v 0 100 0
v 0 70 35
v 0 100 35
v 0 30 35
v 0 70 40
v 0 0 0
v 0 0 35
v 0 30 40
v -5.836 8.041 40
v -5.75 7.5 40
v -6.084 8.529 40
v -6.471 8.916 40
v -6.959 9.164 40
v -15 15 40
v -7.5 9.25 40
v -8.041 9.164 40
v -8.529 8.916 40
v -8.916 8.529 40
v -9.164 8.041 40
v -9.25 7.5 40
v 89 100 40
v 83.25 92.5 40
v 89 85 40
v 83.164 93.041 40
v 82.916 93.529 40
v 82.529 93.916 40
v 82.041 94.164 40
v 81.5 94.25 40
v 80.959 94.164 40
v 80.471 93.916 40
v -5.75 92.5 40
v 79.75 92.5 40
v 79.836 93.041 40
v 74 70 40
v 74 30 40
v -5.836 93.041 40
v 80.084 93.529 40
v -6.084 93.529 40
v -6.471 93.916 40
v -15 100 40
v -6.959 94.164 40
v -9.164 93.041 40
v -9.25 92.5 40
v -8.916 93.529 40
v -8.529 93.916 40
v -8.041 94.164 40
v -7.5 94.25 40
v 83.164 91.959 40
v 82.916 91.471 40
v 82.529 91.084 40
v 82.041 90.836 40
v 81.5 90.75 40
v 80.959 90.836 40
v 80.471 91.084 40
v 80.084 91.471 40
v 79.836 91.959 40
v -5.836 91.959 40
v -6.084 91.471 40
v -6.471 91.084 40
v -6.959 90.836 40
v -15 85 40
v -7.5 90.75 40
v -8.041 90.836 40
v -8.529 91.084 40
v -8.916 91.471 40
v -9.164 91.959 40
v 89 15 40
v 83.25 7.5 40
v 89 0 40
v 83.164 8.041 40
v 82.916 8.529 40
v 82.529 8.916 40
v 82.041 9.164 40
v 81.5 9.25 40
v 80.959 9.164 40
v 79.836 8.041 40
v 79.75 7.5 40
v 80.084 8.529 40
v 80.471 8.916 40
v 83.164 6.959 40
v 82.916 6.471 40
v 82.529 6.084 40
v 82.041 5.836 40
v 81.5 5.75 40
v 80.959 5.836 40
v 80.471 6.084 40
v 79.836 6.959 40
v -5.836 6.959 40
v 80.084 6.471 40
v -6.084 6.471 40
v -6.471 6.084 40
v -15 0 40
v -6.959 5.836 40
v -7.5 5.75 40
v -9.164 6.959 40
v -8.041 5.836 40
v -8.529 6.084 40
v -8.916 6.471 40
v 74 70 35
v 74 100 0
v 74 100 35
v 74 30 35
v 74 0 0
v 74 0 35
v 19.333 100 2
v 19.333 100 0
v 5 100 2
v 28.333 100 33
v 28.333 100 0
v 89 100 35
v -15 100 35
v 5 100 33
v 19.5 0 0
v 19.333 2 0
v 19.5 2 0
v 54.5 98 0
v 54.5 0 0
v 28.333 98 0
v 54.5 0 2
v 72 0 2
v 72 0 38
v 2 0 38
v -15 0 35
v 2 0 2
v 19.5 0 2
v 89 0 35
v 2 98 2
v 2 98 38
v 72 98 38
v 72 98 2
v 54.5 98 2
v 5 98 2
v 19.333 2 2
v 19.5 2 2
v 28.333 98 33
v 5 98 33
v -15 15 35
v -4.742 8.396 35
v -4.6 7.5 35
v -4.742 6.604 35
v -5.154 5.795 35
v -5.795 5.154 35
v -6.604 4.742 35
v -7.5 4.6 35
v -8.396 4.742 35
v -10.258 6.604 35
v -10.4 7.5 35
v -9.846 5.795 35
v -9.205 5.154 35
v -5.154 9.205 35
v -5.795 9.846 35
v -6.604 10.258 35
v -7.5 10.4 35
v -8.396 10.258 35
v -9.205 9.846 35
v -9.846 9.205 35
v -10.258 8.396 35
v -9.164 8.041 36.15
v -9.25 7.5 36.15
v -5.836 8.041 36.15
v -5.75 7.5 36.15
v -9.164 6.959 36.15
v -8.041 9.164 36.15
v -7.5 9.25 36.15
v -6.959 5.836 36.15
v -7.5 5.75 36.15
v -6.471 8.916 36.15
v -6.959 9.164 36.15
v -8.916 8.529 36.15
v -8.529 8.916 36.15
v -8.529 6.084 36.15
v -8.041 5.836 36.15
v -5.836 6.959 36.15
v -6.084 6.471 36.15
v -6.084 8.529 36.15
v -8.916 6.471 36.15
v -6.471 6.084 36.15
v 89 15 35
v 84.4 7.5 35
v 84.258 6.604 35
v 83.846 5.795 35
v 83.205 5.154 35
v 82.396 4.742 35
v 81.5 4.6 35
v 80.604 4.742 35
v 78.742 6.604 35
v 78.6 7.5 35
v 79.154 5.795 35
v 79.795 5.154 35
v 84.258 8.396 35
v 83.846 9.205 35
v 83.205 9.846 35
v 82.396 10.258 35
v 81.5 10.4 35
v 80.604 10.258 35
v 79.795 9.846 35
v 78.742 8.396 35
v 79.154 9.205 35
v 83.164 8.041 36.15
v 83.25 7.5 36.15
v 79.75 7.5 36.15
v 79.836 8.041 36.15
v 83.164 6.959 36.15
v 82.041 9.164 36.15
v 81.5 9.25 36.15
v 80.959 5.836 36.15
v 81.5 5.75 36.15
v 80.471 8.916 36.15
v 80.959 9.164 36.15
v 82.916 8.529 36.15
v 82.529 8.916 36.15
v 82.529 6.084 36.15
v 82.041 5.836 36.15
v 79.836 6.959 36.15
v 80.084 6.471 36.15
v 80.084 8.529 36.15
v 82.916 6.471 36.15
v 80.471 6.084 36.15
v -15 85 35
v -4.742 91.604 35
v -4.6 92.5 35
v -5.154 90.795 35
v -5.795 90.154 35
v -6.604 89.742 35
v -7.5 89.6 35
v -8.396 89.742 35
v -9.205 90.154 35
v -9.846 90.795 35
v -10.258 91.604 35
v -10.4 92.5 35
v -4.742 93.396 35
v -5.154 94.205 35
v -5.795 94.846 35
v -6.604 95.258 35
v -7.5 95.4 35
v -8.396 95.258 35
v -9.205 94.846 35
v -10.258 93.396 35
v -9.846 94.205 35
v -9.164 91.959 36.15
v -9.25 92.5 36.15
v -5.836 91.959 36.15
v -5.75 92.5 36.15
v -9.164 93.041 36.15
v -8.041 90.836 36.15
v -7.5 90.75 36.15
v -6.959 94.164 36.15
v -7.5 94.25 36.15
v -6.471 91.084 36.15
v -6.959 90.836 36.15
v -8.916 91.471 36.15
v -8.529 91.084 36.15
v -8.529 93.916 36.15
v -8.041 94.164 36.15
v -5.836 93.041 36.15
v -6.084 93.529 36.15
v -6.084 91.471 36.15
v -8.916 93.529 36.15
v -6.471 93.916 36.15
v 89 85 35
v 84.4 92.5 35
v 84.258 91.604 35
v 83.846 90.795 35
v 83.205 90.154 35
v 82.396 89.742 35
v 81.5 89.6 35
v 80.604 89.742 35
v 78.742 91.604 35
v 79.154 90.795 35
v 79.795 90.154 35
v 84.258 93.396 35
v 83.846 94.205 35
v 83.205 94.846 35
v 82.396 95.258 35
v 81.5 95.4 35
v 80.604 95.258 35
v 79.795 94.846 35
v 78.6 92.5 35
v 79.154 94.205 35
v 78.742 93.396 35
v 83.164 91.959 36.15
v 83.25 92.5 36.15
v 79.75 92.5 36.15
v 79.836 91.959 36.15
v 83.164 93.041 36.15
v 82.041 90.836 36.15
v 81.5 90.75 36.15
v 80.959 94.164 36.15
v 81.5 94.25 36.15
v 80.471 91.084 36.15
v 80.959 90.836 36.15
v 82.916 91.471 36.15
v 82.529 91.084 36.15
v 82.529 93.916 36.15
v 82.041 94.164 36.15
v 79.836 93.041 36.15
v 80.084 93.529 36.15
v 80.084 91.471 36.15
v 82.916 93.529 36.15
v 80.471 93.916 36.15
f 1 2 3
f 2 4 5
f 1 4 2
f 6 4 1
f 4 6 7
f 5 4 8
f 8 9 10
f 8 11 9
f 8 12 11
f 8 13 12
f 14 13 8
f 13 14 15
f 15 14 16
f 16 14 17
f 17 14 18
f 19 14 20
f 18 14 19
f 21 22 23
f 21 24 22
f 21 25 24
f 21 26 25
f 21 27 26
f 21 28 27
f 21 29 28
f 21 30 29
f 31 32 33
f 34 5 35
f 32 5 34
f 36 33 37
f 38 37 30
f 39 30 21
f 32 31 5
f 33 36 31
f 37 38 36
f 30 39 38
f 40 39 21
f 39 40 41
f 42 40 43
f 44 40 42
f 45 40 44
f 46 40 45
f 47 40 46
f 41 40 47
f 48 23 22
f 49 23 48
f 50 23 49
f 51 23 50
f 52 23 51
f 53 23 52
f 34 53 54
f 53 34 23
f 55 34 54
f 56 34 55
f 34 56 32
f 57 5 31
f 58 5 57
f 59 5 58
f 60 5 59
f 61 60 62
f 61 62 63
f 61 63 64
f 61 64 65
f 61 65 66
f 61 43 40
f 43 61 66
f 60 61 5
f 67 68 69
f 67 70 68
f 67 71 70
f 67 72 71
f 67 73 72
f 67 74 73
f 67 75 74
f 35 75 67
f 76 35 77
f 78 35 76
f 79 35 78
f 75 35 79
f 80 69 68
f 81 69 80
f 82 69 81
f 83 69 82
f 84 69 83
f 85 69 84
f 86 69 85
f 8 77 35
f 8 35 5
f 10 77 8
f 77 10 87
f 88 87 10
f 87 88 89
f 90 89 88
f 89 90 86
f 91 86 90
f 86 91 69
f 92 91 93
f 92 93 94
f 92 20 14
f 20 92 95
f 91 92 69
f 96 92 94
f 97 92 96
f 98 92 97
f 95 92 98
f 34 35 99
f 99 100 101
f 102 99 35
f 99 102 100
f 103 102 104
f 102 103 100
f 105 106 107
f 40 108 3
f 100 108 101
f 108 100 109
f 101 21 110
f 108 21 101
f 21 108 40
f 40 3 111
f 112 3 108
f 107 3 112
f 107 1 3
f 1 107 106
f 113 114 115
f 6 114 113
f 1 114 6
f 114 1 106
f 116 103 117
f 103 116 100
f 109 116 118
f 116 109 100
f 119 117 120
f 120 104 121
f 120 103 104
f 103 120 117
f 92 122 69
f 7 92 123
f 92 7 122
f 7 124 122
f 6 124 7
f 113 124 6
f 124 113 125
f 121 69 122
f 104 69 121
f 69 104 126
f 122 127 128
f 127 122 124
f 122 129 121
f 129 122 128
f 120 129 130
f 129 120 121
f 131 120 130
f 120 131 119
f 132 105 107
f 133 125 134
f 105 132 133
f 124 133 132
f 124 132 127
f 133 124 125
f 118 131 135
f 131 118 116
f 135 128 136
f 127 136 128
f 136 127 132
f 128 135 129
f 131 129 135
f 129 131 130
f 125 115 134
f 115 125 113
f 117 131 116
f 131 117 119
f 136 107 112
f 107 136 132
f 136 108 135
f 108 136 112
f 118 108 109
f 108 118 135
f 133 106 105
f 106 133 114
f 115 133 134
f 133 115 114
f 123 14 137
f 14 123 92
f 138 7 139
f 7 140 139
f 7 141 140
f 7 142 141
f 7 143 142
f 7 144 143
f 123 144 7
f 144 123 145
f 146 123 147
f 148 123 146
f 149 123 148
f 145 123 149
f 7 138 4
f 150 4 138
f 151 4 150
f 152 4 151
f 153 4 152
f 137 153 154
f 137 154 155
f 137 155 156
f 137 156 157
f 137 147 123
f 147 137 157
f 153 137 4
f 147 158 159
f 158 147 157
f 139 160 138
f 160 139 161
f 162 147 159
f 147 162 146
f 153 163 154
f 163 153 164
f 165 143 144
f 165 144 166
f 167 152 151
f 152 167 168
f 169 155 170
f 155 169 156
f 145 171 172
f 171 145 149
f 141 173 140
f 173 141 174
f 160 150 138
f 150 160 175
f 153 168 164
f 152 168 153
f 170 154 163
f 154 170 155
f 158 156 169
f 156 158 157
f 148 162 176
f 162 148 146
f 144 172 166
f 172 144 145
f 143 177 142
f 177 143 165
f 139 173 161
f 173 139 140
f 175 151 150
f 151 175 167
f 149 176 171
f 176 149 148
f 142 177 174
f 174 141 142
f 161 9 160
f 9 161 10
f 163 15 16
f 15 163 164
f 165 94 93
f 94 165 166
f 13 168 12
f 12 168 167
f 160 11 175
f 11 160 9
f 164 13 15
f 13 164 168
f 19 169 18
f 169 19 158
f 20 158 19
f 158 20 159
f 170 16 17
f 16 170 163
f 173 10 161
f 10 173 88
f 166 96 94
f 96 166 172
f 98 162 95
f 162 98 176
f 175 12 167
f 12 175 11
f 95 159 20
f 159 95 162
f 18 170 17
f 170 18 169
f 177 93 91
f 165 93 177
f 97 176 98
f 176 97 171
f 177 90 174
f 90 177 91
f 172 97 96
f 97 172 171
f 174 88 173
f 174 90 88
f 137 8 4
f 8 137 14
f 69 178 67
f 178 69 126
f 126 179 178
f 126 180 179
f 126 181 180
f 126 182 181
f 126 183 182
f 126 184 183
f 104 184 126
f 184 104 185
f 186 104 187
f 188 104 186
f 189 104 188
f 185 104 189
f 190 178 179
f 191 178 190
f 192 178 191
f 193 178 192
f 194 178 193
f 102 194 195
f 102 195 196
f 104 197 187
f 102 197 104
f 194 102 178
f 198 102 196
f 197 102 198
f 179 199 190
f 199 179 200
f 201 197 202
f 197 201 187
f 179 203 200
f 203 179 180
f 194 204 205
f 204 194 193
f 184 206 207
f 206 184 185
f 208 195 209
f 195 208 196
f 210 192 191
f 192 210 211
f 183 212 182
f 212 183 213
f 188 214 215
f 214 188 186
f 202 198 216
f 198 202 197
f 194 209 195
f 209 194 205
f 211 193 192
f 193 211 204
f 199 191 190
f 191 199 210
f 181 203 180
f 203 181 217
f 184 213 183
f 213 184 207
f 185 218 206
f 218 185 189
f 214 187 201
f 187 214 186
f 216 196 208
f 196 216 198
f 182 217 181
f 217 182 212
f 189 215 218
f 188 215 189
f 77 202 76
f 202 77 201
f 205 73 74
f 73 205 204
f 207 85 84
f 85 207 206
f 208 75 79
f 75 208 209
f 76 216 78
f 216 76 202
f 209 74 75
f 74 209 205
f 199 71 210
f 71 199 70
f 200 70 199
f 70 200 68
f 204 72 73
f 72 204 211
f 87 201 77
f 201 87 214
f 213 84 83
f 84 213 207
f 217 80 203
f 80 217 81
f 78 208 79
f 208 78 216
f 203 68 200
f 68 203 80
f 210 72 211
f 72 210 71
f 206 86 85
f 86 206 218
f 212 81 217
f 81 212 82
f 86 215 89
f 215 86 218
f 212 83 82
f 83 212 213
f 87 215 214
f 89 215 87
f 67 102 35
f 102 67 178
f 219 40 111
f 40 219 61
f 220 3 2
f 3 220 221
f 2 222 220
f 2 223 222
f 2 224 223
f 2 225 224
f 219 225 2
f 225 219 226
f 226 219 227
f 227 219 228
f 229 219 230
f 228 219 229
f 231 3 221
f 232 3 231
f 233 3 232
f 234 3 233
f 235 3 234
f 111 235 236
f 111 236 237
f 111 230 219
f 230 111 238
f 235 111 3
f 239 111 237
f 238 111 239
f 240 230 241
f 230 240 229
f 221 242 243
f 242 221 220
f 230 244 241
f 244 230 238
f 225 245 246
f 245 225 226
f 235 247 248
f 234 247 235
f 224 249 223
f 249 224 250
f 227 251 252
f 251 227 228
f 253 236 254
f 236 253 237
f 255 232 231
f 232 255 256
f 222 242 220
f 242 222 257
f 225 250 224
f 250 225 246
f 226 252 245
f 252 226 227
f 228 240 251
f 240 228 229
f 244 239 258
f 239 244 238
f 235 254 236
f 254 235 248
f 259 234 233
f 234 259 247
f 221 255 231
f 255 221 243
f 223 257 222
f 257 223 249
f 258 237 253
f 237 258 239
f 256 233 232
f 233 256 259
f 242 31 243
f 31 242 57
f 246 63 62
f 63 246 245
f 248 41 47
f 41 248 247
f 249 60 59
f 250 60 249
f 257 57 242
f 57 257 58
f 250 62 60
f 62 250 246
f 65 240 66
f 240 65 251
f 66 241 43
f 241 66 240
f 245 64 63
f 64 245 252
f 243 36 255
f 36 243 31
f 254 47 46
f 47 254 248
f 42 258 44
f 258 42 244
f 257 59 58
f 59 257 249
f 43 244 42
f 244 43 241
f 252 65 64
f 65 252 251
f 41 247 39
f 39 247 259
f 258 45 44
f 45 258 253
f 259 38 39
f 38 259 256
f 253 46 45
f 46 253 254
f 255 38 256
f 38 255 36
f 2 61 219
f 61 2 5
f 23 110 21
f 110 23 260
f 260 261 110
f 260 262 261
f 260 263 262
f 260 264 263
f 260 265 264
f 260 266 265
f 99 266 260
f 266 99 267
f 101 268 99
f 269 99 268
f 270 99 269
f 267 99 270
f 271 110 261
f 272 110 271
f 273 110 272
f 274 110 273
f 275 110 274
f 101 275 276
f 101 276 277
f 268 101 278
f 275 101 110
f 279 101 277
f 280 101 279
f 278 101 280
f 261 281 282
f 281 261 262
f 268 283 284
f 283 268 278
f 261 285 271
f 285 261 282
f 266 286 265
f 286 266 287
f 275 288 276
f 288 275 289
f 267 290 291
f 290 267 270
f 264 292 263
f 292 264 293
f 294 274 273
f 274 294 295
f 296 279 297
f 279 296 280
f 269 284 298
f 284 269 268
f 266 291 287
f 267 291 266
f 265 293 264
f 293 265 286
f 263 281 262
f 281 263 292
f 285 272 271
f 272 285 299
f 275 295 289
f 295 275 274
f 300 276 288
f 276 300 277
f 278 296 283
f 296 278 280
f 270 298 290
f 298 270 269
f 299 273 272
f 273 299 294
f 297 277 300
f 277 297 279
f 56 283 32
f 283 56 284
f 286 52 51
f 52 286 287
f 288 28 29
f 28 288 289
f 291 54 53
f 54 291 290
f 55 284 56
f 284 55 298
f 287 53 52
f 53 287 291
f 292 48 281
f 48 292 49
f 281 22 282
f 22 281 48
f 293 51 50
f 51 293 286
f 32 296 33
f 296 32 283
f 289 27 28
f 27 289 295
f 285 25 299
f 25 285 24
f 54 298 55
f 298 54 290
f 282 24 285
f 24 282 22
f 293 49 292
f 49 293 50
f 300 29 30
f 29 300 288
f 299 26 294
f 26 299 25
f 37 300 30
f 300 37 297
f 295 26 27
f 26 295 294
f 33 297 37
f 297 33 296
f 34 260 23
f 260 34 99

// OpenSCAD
w = 70;
l = 100;
t = 36;

difference() {
    cube([w+4, l, t+4]);
    translate([2, -2, 2]) cube([w, l, t]);
    translate([w/2+2, l/2-2, 5]) cube([w/2, l, t], center=true);
    translate([5, 2, 2]) cube([w*1/3, l, t-5]);
    translate([w*1/3-4, 2, -5]) cube([9, l, t-5]);
}

translate([-15, 0, t-1]) a();
translate([w+15+4, 0, t-1]) mirror([1,0,0]) a();
translate([-15, l, t-1]) mirror([0,1,0]) a();
translate([w+15+4, l, t-1]) rotate([0,0,180]) a();


module a() {
    difference() {
        cube([15, 30, 5]);
        translate([7.5, 7.5, 2.9]){ 
            rotate([0,180,0]) cylinder(d1=0, d2=6, h=3, $fn=20);
        }
        translate([7.5, 7.5, 0]){ 
            cylinder(d=3.5, h=10, $fn=20);
        }
        translate([0,15,-1])
            rotate([0,0,45])
                cube([30, 30, 30]);
    }
}
